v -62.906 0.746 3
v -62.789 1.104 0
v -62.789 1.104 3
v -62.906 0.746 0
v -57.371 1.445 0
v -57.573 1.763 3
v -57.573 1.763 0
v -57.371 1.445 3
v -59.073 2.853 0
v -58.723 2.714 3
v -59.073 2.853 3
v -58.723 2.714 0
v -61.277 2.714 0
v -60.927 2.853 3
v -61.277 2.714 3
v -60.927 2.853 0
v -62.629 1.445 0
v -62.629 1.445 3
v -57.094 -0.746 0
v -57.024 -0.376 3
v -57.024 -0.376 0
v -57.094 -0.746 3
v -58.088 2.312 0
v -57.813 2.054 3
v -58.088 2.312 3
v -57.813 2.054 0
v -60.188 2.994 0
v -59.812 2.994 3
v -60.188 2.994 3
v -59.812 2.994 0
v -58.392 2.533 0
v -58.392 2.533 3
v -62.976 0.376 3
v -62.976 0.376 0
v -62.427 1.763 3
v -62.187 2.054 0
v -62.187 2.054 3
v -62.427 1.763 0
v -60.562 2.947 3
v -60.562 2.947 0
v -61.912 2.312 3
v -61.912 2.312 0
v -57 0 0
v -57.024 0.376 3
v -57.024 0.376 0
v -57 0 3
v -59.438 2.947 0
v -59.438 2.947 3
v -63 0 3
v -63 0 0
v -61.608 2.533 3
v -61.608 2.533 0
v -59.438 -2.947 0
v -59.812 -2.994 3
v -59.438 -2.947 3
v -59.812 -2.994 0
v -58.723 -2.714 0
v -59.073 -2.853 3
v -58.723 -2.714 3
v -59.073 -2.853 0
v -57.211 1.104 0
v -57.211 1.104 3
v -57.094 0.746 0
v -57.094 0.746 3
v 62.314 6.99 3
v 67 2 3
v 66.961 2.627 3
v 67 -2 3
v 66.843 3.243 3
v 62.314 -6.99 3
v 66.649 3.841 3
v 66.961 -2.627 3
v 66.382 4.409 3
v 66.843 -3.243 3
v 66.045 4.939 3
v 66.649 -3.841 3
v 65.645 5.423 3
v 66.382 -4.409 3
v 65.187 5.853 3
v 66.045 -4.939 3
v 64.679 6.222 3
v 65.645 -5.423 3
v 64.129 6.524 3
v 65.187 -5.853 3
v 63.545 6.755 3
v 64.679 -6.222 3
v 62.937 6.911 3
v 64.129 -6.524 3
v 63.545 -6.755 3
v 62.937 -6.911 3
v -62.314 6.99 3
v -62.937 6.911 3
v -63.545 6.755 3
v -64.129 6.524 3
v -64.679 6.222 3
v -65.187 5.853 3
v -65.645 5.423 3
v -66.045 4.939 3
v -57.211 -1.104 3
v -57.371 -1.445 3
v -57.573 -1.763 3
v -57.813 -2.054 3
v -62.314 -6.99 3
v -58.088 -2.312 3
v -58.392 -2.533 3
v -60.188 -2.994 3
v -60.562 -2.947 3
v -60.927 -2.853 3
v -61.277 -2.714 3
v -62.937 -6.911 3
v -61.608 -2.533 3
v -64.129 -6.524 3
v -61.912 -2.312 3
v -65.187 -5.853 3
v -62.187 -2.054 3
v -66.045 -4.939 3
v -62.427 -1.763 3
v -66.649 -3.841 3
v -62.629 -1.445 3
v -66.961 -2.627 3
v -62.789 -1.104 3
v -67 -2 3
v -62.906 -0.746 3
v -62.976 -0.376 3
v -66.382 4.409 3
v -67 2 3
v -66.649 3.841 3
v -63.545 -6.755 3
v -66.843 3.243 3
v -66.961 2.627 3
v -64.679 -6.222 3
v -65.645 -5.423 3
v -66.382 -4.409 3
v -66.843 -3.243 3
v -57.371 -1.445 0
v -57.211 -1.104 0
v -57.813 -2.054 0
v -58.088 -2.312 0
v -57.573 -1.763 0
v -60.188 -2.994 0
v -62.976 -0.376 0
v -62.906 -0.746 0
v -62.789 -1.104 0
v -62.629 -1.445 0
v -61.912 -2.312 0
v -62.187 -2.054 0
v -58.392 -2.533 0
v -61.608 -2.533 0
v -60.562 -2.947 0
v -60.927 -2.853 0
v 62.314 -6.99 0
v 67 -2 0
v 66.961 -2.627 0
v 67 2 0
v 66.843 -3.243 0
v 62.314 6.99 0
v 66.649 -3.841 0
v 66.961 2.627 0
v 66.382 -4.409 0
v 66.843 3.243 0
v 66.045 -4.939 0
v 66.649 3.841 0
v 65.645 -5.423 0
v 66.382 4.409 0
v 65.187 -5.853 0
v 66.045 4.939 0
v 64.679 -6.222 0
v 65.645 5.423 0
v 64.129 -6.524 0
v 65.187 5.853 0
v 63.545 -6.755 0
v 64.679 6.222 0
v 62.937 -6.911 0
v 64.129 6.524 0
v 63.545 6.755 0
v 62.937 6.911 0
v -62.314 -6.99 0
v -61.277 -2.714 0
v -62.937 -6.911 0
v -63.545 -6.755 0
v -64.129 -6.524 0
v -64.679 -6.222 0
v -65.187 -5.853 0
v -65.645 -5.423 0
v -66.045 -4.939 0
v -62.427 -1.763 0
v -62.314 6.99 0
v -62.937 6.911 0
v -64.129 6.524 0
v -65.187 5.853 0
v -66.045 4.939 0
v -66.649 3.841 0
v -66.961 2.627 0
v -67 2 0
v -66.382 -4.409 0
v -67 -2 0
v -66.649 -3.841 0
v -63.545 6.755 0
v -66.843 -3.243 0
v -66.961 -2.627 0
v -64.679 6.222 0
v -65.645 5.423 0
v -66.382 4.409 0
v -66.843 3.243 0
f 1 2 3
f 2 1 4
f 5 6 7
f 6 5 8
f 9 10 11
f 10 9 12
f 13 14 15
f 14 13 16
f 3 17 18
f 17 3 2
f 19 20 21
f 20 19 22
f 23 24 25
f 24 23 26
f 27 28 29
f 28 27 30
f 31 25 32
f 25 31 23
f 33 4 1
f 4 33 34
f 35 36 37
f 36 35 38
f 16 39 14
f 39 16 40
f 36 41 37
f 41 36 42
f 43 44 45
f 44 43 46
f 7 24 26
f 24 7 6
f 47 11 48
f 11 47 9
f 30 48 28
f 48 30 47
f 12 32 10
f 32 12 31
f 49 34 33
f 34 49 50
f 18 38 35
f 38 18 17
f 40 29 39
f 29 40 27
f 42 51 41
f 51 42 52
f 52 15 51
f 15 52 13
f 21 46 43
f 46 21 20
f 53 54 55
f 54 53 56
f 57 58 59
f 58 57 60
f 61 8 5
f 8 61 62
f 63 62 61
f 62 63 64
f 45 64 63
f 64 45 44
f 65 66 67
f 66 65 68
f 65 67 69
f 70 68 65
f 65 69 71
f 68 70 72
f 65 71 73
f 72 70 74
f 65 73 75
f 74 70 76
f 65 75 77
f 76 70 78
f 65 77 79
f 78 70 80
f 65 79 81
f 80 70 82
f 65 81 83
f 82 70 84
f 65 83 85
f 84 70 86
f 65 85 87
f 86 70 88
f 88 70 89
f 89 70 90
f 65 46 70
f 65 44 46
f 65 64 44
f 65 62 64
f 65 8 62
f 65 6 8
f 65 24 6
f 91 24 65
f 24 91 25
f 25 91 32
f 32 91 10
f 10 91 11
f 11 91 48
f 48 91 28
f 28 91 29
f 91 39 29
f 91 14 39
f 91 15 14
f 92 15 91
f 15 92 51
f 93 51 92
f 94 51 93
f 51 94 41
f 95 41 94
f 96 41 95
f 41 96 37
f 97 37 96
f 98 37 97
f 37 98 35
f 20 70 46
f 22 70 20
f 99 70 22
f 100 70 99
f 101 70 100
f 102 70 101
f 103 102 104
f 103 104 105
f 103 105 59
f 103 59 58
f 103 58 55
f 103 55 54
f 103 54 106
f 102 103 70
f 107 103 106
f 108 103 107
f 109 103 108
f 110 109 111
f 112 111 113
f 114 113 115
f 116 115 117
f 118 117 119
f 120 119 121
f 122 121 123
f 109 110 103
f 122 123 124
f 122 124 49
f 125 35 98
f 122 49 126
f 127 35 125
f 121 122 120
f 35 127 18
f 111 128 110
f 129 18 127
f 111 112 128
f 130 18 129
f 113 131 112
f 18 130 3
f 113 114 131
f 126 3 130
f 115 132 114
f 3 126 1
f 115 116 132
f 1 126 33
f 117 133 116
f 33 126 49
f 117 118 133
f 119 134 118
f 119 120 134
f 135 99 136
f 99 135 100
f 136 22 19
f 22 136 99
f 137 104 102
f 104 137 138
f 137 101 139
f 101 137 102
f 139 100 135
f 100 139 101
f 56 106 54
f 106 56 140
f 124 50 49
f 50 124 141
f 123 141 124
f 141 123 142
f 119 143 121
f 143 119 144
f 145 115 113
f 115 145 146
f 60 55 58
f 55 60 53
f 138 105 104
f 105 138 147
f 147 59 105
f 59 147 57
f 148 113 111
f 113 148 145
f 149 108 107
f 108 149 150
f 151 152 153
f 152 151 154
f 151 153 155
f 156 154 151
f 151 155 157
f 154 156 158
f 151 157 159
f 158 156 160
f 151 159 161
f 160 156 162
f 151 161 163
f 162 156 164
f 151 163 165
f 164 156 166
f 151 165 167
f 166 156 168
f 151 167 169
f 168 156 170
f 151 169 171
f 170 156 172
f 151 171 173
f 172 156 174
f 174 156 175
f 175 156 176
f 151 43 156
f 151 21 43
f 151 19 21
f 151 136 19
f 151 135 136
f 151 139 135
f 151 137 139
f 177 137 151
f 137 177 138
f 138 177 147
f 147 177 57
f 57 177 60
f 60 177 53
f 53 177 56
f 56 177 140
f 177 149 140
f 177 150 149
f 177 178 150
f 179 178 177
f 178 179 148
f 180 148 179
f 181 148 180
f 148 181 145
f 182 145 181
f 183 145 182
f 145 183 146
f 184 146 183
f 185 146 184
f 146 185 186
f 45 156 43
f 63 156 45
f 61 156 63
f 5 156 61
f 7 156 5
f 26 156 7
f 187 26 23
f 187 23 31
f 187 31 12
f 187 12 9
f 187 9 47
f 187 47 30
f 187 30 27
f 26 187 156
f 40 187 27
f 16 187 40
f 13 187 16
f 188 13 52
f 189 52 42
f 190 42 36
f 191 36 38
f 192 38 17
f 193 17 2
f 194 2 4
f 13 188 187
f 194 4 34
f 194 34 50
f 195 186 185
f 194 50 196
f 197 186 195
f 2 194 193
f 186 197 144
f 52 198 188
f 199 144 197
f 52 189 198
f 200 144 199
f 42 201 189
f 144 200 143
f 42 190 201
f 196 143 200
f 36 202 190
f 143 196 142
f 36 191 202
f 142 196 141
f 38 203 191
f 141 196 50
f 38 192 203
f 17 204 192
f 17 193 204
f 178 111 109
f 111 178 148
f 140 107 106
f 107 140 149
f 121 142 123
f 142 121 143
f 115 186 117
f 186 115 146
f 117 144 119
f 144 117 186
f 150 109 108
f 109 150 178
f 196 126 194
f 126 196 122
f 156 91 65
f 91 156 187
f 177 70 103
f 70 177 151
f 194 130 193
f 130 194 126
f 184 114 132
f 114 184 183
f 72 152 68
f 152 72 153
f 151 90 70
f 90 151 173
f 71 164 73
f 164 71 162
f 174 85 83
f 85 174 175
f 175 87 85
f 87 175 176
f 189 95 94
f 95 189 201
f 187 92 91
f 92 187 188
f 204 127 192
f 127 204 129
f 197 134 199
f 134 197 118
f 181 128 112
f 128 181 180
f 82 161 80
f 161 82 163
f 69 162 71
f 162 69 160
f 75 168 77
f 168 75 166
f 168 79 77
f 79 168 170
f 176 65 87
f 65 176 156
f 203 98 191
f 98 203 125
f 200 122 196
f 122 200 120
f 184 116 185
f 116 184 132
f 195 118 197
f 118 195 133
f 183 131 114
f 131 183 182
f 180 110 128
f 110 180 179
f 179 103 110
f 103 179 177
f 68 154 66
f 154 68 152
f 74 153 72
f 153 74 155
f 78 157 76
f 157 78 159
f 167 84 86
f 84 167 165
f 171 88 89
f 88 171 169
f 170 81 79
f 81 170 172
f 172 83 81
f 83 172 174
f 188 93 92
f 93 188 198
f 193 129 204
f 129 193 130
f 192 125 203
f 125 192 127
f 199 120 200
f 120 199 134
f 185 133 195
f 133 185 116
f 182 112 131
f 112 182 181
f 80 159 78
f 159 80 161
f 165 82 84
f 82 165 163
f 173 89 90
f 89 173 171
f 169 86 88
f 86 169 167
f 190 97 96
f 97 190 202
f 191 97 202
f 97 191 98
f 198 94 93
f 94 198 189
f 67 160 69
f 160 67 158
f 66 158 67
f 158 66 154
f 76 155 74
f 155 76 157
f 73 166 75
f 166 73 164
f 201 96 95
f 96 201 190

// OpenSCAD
$fn = 50;


difference() {
	union() {
		hull() {
			translate(v = [-62.0000000000, 2.0000000000, 0]) {
				cylinder(h = 3, r = 5);
			}
			translate(v = [62.0000000000, 2.0000000000, 0]) {
				cylinder(h = 3, r = 5);
			}
			translate(v = [-62.0000000000, -2.0000000000, 0]) {
				cylinder(h = 3, r = 5);
			}
			translate(v = [62.0000000000, -2.0000000000, 0]) {
				cylinder(h = 3, r = 5);
			}
		}
	}
	union() {
		translate(v = [-60.0000000000, 0.0000000000, 0]) {
			cylinder(h = 3, r = 3.0000000000);
		}
		translate(v = [-60.0000000000, 0.0000000000, 0]) {
			cylinder(h = 3, r = 1.5000000000);
		}
		translate(v = [-60.0000000000, 0.0000000000, 0]) {
			cylinder(h = 3, r = 1.5000000000);
		}
		translate(v = [-60.0000000000, 0.0000000000, 0]) {
			cylinder(h = 3, r = 1.5000000000);
		}
	}
}
